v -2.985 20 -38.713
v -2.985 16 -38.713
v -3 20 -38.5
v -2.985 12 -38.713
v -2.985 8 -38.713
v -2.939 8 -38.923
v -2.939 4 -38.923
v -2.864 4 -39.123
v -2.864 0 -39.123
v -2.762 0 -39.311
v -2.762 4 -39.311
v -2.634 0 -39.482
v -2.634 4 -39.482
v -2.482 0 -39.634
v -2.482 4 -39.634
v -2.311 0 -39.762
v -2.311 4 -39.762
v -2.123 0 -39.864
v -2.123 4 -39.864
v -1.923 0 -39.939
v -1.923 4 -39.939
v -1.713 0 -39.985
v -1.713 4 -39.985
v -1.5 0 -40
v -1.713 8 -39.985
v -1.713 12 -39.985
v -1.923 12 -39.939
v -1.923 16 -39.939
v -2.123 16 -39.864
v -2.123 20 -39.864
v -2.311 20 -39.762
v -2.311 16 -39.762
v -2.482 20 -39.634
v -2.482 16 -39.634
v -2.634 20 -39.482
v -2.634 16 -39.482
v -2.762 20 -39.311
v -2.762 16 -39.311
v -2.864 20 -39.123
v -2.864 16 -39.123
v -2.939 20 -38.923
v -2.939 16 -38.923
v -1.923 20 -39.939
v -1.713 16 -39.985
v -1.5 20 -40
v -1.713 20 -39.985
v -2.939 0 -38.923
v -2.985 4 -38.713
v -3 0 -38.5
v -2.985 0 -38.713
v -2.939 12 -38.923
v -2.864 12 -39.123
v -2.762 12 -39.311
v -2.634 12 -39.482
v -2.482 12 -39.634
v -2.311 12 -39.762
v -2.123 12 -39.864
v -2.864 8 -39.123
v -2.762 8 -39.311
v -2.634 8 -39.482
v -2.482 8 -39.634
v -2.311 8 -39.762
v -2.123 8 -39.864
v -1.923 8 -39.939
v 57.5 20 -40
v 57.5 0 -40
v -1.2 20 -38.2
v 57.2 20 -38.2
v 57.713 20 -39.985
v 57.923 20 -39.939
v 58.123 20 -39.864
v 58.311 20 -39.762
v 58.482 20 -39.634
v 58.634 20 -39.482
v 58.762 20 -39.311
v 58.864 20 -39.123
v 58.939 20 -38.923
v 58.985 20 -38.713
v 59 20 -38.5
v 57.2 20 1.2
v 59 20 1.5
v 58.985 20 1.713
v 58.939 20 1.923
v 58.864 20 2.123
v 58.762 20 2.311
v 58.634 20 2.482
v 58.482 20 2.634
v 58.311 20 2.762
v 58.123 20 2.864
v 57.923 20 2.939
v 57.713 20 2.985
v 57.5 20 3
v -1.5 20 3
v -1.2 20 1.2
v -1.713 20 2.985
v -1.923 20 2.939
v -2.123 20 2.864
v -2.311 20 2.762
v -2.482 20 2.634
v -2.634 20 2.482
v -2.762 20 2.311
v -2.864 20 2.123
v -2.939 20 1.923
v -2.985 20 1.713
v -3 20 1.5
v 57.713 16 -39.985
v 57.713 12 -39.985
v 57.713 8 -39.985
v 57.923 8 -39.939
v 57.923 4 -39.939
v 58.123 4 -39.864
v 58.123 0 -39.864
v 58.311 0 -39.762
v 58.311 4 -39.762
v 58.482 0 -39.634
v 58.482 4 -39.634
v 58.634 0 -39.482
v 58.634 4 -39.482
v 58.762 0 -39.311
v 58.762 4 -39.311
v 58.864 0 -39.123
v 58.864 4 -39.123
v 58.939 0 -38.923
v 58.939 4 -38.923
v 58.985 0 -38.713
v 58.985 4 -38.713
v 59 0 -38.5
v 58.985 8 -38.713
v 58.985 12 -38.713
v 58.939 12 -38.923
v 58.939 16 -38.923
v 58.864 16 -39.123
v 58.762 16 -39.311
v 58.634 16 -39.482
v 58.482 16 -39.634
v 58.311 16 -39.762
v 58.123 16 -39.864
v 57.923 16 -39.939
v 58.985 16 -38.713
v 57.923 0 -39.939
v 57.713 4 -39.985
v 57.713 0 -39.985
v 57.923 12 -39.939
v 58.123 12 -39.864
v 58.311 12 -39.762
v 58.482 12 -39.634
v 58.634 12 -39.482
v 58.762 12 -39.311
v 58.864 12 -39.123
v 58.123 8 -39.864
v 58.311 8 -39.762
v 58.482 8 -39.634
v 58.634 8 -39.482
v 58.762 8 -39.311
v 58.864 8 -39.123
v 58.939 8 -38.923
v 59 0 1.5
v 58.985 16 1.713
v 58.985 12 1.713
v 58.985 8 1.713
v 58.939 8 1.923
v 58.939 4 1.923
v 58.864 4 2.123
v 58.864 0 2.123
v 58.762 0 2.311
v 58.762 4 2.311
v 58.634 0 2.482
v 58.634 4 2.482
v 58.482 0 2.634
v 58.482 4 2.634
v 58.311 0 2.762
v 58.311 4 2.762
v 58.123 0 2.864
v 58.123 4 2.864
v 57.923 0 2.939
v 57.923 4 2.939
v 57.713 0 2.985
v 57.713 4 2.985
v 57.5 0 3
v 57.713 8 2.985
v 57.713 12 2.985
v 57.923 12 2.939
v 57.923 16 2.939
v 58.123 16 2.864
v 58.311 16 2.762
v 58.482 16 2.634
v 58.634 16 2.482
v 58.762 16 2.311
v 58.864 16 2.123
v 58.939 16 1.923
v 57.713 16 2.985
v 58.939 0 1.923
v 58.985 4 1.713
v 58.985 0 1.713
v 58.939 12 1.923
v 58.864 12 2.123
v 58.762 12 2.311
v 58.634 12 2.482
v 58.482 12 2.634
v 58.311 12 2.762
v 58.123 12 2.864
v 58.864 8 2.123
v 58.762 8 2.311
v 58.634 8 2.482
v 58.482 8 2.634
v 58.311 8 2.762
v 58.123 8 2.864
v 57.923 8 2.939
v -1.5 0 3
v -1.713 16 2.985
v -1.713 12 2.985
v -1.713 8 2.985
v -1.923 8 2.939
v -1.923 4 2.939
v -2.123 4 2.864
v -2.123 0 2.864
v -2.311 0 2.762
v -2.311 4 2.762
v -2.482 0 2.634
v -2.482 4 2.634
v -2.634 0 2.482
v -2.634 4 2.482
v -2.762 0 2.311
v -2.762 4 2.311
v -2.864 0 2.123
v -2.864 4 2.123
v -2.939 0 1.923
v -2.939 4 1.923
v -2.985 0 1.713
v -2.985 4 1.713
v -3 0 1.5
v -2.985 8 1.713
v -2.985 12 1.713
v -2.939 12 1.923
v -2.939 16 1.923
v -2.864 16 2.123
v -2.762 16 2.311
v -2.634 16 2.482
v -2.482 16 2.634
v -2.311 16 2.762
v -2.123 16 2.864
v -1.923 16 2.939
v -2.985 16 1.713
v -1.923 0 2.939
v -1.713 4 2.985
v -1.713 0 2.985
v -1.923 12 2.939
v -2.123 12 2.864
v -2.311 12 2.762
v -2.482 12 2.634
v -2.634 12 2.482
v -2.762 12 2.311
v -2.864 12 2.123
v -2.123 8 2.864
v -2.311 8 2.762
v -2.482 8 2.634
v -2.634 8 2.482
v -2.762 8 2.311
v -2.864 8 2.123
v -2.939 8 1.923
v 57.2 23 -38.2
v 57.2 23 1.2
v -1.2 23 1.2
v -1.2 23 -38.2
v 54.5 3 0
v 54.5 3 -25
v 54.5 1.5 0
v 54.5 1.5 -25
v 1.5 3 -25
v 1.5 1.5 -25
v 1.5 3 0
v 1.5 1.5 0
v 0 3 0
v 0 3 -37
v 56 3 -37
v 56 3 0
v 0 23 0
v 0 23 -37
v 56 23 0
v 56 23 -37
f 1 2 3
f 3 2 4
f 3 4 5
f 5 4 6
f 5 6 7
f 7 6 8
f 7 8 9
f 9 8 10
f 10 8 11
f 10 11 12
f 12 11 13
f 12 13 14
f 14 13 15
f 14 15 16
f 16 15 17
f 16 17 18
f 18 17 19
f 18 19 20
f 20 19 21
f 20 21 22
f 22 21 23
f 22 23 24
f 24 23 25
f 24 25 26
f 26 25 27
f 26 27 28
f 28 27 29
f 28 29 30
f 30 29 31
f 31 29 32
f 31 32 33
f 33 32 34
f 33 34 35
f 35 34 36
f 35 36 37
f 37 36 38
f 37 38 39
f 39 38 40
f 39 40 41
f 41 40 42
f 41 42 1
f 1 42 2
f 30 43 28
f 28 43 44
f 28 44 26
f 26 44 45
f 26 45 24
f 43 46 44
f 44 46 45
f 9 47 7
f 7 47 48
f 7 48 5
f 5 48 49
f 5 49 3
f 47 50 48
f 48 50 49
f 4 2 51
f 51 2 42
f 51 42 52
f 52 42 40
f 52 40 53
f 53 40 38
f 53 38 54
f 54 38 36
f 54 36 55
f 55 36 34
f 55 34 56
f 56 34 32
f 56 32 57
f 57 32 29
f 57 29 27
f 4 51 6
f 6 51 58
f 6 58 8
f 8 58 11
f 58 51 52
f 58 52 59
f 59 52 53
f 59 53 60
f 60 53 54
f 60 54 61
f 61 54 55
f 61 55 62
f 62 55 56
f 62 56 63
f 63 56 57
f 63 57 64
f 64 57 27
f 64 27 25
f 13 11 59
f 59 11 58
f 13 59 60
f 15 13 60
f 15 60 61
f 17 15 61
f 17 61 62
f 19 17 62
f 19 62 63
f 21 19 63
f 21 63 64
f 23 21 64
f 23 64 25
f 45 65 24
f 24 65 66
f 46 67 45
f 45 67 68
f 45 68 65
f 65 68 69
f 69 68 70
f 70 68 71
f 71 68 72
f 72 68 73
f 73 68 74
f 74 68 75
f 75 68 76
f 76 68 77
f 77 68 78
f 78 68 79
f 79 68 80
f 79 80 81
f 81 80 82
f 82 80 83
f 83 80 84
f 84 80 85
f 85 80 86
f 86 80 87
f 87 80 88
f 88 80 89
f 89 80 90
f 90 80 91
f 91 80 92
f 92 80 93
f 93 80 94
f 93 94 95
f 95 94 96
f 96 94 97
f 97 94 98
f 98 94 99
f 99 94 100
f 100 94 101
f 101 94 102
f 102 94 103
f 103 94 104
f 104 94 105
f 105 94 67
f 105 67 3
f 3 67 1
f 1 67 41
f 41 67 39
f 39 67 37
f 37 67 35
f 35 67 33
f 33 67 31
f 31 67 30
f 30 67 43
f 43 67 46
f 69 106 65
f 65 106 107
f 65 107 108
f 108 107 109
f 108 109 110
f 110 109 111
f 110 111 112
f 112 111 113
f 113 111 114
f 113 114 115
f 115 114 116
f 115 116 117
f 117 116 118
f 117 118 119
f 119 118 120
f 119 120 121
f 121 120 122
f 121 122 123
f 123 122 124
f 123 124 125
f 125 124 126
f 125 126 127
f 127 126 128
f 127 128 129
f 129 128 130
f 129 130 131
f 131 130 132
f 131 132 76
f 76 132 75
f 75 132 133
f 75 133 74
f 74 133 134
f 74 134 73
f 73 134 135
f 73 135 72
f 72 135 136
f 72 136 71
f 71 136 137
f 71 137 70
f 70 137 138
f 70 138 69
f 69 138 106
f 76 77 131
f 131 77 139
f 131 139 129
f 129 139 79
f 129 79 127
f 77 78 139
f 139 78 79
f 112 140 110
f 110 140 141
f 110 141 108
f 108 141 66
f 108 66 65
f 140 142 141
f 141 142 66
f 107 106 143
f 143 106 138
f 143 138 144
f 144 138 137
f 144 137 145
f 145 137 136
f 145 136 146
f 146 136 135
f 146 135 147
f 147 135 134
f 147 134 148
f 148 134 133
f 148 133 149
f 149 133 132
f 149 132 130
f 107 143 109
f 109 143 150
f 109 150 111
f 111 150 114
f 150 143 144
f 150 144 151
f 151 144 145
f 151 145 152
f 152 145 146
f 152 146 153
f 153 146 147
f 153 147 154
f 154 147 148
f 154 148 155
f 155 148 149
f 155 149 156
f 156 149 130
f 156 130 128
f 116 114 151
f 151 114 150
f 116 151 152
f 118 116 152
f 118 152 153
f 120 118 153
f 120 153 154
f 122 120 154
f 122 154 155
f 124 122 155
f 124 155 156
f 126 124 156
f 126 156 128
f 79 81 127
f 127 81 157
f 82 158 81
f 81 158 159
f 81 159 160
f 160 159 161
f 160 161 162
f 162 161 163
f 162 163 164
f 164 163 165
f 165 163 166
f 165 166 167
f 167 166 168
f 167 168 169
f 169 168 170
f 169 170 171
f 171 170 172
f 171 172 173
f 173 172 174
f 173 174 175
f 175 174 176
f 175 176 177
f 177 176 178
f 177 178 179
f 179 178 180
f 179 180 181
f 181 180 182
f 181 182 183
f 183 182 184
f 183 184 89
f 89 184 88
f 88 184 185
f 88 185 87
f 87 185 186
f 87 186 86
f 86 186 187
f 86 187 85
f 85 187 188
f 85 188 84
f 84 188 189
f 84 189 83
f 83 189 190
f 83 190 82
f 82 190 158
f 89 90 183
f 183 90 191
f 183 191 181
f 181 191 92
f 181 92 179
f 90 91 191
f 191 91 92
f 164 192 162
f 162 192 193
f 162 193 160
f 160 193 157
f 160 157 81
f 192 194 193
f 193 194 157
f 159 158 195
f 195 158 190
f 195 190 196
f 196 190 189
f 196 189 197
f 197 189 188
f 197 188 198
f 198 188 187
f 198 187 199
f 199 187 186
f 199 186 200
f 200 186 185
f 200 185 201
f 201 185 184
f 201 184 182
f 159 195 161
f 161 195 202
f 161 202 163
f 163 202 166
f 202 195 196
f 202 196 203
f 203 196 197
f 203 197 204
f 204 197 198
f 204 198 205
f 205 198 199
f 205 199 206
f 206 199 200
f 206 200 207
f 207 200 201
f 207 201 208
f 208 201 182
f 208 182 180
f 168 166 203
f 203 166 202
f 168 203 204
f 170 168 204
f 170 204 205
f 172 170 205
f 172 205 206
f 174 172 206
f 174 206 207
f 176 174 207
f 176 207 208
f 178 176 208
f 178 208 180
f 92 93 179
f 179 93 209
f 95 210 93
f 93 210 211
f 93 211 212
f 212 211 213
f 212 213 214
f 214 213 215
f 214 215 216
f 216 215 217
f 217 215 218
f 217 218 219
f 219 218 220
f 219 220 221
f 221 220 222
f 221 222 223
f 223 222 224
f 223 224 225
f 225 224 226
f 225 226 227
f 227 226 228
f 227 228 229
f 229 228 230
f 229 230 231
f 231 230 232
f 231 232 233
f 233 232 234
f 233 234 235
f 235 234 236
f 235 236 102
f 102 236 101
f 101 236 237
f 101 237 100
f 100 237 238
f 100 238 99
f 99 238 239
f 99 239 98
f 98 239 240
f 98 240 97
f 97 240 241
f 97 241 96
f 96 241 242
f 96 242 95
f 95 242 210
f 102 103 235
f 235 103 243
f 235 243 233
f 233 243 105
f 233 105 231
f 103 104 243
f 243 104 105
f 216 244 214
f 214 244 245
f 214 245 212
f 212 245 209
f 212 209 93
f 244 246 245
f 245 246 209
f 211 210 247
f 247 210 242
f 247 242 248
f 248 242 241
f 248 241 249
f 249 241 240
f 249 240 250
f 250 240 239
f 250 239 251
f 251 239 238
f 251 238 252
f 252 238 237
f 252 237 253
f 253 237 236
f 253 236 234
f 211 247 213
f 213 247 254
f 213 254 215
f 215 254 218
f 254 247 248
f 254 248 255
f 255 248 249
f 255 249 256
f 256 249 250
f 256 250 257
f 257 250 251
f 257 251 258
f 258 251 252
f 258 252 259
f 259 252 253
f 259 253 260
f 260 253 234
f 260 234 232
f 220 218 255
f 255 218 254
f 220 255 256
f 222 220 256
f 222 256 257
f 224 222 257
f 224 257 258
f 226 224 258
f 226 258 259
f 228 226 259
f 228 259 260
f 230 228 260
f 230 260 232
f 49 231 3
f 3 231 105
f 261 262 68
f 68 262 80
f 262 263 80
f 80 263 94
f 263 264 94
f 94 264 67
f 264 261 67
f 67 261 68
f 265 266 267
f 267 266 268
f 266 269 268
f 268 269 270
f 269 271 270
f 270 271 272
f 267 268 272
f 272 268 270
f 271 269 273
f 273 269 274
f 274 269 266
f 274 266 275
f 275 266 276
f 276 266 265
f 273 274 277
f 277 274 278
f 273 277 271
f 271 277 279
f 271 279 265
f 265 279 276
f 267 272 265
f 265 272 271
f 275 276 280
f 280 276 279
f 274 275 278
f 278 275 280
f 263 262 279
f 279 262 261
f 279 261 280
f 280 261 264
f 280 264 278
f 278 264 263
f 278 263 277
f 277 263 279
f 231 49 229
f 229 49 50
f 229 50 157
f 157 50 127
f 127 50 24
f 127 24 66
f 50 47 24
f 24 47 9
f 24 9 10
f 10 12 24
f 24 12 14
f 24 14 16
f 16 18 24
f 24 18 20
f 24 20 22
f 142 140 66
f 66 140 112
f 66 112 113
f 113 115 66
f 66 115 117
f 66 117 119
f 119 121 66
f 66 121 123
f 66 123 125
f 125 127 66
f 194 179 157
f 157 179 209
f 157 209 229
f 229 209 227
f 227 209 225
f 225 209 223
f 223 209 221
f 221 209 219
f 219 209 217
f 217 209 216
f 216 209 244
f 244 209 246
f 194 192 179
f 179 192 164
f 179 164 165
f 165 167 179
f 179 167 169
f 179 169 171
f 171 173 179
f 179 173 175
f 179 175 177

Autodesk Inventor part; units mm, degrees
sketch "Sketch1" plane through (0, 0, 0) normal (0, 1, 0) x (-1, 0, 0)
  line L0 (0, 0) -> (-56, 0)
  line L1 (-56, 0) -> (-56, -37)
  line L2 (-56, -37) -> (0, -37)
  line L3 (0, -37) -> (0, 0)
  line L4 (3, -40) -> (-59, -40)
  line L5 (-59, -40) -> (-59, 3)
  line L6 (-59, 3) -> (3, 3)
  line L7 (3, 3) -> (3, -40)
  dimension "d0" = 56
  dimension "d1" = 37
  dimension "d2" = 3
extrude "Extrusion1" add sketch "Sketch1" along normal blind 3 contours L3 L2 L1 L0 | L4 L5 L6 L7
sketch "Sketch2" plane through (0, 3, 0) normal (0, 1, 0) x (1, 0, 0)
  line L0 (-3, -3) -> (59, -3) projected
  line L1 (59, -3) -> (59, 40) projected
  line L2 (-3, -3) -> (59, -3)
  line L3 (59, -3) -> (59, 40)
  line L4 (59, 40) -> (-3, 40)
  line L5 (-3, 40) -> (-3, -3)
  line L6 (0, 37) -> (56, 37)
  line L7 (56, 37) -> (56, 0)
  line L8 (56, 0) -> (0, 0)
  line L9 (0, 0) -> (0, 37)
  point P0 (0, 0)
  dimension "d5" = 3
extrude "Extrusion2" add sketch "Sketch2" along normal blind 20
sketch "Sketch3" plane through (0, 3, 0) normal (0, 1, 0) x (1, 0, 0)
  line L0 (1.5, 25) -> (54.5, 25)
  line L1 (54.5, 25) -> (54.5, 0)
  line L2 (54.5, 0) -> (1.5, 0)
  line L3 (1.5, 0) -> (1.5, 25)
  line L4 (0, 37) -> (56, 37) projected
  line L5 (71.4, 0) -> (-15.4, 0) projected
  point P0 (0, 0)
  point P1 (28, 37)
  point P2 (28, 25)
  dimension "d8" = 53
  dimension "d9" = 25
  dimension "d10" = 0
  dimension "d12" = 0
extrude "Extrusion3" cut sketch "Sketch3" against normal blind 1.5
sketch "Sketch4" plane through (0, 23, 0) normal (0, 1, 0) x (1, 0, 0)
  line L0 (-3, -3) -> (59, -3) projected
  line L1 (59, -3) -> (59, 40) projected
  line L2 (-3, -3) -> (59, -3)
  line L3 (59, -3) -> (59, 40)
  line L4 (59, 40) -> (-3, 40)
  line L5 (-3, 40) -> (-3, -3)
  line L6 (-1.2, 38.2) -> (57.2, 38.2)
  line L7 (57.2, 38.2) -> (57.2, -1.2)
  line L8 (57.2, -1.2) -> (-1.2, -1.2)
  line L9 (-1.2, -1.2) -> (-1.2, 38.2)
  point P0 (0, 0)
  dimension "d15" = 1.8
extrude "Extrusion4" cut sketch "Sketch4" against normal blind 3
fillet "Fillet1" radius 1.5 4 edges at (-3, 10, 3) (59, 10, 3) (59, 10, -40) (-3, 10, -40)
sketch "Sketch5" plane through (59, 0, 1.5) normal (1, 0, 0) x (0, 0, -1)
  point P0 (1.5, 0)
equation "\"d0\" = length_inner"
equation "\"d1\" = width_inner"
equation "\"d2\" = thickness"
equation "\"d3\" = thickness"
equation "\"d5\" = thickness"
equation "\"d6\" = height_inner"
equation "\"d8\" = length_batt"
equation "\"d9\" = width_batt"
equation "\"d13\" = 0.5 * thickness"
equation "\"d15\" = 0.6 * thickness"
equation "\"d16\" = thickness"
equation "\"d18\" = 0.5 * thickness"
equation "\"length_inner\" = 56"
equation "\"width_inner\" = 37"
equation "\"height_inner\" = 20"
equation "\"thickness\" = 3"
equation "\"length_batt\" = 53"
equation "\"width_batt\" = 25"
properties part number "ieee_box"
